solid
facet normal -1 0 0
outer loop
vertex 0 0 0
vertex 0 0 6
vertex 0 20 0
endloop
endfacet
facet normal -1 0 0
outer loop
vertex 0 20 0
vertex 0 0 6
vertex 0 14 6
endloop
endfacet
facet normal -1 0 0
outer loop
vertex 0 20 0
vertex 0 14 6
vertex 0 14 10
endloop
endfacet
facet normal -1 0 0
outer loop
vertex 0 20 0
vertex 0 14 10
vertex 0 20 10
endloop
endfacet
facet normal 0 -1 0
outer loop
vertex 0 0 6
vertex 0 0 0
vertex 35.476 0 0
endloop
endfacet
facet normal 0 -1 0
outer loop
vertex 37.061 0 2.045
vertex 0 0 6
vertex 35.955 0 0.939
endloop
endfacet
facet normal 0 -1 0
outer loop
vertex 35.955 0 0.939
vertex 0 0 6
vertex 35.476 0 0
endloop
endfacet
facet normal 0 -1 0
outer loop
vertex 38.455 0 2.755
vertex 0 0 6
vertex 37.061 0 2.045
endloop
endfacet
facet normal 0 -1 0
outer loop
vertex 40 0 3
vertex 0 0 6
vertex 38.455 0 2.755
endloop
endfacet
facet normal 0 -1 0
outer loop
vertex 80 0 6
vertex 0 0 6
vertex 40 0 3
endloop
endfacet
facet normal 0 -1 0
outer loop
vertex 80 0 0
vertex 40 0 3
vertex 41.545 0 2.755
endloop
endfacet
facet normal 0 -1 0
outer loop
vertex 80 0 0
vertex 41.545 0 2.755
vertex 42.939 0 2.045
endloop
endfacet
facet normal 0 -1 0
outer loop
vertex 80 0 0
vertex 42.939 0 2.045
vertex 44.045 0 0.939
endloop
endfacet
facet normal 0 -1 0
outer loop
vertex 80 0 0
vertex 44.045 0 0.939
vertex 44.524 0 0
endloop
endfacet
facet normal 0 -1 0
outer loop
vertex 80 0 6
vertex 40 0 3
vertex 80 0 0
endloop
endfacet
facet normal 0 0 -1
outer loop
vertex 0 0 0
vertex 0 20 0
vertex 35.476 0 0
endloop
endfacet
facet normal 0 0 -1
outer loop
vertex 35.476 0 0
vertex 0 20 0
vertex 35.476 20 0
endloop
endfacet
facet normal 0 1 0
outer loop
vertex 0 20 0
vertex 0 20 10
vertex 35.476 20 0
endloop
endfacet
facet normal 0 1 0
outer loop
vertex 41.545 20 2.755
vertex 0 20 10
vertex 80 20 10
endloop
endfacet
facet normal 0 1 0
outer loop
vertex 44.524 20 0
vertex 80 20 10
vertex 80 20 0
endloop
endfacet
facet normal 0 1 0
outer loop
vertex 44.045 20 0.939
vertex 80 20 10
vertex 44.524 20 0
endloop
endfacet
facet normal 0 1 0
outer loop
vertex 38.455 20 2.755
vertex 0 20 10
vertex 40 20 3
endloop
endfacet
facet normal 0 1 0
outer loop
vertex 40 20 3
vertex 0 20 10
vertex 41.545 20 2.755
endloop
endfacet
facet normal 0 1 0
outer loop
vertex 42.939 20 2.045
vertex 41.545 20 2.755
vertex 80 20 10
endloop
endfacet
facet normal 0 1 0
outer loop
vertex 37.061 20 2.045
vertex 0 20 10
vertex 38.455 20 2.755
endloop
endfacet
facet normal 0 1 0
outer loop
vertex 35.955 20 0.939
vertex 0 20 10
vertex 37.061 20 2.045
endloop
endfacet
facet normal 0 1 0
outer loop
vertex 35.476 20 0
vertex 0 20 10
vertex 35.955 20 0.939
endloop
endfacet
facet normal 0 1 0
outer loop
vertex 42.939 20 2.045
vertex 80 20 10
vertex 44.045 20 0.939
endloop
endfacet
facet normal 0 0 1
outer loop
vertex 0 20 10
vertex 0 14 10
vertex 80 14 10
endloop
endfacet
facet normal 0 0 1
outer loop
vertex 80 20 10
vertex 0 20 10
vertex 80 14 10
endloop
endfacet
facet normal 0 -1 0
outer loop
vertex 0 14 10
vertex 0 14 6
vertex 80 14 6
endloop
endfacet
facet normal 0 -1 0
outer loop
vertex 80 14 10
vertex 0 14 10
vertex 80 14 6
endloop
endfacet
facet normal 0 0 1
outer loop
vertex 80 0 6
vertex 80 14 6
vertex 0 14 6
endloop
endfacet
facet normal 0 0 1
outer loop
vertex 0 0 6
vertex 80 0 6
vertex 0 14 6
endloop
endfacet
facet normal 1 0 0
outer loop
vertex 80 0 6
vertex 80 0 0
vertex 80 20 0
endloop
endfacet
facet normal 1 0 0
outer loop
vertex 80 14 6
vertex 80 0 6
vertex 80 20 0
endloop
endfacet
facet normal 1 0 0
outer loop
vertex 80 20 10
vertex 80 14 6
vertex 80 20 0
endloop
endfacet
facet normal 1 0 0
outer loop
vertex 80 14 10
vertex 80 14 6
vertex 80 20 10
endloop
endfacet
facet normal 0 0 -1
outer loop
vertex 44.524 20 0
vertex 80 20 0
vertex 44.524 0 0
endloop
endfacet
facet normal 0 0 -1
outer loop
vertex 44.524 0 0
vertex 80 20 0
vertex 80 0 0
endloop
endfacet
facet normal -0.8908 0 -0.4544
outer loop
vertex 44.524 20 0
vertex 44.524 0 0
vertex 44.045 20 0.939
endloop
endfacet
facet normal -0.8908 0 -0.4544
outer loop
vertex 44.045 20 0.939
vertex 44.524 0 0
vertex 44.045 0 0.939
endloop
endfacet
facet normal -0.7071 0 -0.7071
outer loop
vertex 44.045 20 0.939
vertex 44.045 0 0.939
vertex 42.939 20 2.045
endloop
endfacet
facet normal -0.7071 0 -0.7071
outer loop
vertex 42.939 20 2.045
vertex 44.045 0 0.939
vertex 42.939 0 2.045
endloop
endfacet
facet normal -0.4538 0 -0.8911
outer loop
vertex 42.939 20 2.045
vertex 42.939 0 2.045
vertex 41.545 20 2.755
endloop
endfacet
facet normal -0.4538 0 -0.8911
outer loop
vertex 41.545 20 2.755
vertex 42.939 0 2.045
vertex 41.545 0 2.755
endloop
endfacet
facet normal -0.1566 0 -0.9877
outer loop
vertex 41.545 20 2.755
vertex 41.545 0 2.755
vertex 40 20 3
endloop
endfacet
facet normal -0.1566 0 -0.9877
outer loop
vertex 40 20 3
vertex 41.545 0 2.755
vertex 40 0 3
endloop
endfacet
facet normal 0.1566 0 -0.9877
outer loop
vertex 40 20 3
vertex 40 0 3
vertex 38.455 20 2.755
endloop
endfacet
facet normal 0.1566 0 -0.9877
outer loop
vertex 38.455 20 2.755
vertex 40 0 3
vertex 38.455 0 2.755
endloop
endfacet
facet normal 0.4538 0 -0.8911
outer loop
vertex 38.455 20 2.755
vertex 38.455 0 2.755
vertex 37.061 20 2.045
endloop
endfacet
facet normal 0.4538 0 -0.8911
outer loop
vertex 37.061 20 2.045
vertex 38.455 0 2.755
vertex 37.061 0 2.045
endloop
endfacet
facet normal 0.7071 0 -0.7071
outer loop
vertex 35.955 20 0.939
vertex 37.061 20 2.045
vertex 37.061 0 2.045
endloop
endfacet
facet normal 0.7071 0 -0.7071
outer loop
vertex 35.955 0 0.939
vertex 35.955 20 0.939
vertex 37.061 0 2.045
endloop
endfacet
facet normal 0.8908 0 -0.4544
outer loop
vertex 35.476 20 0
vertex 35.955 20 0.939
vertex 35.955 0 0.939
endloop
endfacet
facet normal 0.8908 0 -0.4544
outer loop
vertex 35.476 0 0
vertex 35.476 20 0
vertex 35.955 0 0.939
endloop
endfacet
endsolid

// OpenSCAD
union() {
	translate([0,14,6])cube([80,6,4]);
	difference() {
		cube([80,20,6]);
		translate([40,25,-2]) rotate([90,0,0])cylinder(82,r=5,$fn=20);
	}
}
